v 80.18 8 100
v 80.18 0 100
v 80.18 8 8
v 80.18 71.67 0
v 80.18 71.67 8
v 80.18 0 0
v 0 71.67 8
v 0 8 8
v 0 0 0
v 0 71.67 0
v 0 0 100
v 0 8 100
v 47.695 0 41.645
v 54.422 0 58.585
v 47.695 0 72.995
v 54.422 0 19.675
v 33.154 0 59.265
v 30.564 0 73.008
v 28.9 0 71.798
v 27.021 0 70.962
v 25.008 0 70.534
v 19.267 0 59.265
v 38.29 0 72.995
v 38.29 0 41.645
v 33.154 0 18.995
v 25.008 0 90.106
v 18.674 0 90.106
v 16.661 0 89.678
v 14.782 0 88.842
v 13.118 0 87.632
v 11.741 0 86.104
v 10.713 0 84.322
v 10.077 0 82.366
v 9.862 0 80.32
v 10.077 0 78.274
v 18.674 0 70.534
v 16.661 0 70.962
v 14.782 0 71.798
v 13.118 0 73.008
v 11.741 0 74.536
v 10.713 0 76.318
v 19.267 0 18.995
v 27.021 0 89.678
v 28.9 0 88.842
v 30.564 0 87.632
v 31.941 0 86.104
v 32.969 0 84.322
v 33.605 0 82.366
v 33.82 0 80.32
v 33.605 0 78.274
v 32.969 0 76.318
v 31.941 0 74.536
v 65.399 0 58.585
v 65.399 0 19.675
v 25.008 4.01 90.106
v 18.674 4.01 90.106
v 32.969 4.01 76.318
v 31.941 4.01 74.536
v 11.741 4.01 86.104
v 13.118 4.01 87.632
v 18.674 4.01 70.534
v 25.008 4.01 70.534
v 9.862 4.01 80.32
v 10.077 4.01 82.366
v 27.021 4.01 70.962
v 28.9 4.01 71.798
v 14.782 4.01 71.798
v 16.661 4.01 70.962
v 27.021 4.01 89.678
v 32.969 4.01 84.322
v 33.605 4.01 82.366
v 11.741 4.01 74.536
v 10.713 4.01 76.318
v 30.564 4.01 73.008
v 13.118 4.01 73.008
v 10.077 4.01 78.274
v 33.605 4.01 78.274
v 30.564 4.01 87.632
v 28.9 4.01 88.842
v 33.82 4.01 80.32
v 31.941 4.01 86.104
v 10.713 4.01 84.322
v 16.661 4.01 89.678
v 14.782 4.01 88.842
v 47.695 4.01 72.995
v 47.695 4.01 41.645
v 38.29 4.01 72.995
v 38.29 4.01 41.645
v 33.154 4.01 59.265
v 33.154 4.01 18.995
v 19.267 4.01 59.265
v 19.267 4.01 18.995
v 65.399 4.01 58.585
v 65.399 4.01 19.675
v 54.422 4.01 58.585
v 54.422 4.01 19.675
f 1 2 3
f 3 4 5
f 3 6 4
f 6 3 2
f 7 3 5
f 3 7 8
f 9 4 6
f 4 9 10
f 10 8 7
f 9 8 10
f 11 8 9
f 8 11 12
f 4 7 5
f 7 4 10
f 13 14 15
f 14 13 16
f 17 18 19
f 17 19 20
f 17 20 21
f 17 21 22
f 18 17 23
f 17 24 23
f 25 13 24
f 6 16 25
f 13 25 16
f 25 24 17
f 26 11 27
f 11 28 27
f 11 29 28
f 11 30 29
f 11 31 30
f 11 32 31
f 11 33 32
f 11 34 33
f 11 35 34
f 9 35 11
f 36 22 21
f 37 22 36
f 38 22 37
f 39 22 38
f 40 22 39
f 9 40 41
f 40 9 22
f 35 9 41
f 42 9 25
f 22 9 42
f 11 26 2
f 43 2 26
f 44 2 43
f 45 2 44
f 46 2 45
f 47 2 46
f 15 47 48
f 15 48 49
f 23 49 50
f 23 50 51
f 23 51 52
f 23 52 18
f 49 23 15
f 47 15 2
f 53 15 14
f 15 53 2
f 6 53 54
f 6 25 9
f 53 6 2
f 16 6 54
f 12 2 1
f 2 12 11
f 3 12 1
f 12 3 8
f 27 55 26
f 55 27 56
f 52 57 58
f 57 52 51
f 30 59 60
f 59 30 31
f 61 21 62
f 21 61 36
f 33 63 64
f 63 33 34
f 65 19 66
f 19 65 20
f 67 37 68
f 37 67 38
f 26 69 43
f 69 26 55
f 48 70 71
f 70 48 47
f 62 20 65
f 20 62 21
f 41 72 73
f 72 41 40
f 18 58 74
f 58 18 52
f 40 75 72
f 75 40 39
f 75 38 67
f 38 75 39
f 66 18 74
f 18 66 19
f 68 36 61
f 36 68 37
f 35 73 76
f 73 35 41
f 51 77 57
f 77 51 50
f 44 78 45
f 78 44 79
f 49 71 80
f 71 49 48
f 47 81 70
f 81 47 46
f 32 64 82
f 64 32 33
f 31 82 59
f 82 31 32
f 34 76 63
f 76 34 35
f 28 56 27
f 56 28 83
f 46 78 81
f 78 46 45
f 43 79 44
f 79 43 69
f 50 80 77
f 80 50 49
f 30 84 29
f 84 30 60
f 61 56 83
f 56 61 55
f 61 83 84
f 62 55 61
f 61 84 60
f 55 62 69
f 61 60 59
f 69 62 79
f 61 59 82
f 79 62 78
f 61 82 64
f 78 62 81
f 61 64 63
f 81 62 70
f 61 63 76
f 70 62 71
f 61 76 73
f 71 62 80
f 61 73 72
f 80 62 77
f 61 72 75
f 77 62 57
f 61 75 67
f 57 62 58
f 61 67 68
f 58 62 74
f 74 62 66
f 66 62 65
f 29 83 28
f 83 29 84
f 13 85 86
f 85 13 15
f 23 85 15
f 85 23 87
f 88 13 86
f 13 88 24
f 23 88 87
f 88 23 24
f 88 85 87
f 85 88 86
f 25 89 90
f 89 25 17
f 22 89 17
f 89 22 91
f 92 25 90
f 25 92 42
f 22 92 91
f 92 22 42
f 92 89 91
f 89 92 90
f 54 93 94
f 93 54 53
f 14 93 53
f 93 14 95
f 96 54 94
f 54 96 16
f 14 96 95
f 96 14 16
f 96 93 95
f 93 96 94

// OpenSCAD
/* doodle-meta {"version":1,"parameters":{"width":{"label":"Overall width","description":"Changes the body width","unit":"mm","feature":"body_width"},"depth":{"label":"Overall depth","description":"Changes the base depth","unit":"mm","feature":"body_depth"},"height":{"label":"Overall height","description":"Changes the total height","unit":"mm","feature":"body_height"},"panel_thickness":{"label":"Panel thickness","description":"Thickness of the vertical upright","unit":"mm","feature":"panel_thickness"},"base_thickness":{"label":"Base thickness","description":"Thickness of the horizontal base","unit":"mm","feature":"base_thickness"}},"features":{"body_width":{"kind":"dimension","axis":"x","label":"Overall width"},"body_depth":{"kind":"dimension","axis":"y","label":"Overall depth"},"body_height":{"kind":"dimension","axis":"z","label":"Overall height"},"panel_thickness":{"kind":"dimension","axis":"y","label":"Panel thickness"},"base_thickness":{"kind":"dimension","axis":"z","label":"Base thickness"}}} */

// Parameters
width = 80.18;
depth = 71.67;
height = 100.0;
panel_thickness = 8.0;
base_thickness = 8.0;

// Derived dimensions
base_depth = depth - panel_thickness;
panel_height = height - base_thickness;

// Cutout parameters (derived from view_1 normalized coordinates)
// View 1: u -> X, v -> -Z (v=0 is top, v=1 is bottom)
// X = u * width, Z = (1-v) * height

// Cutout 1 (Upper-Left): center (0.2724, 0.1968), size (0.2988, 0.1968)
c1_cx = 0.2724 * width;
c1_cz = (1.0 - 0.1968) * height;
c1_w = 0.2988 * width;
c1_h = 0.1968 * height;

// Cutout 2 (Center): center (0.5362, 0.4268), size (0.1173, 0.3135)
c2_cx = 0.5362 * width;
c2_cz = (1.0 - 0.4268) * height;
c2_w = 0.1173 * width;
c2_h = 0.3135 * height;

// Cutout 3 (Lower-Left): center (0.3269, 0.6087), size (0.1732, 0.4027)
c3_cx = 0.3269 * width;
c3_cz = (1.0 - 0.6087) * height;
c3_w = 0.1732 * width;
c3_h = 0.4027 * height;

// Cutout 4 (Lower-Right): center (0.7472, 0.6087), size (0.1369, 0.3891)
c4_cx = 0.7472 * width;
c4_cz = (1.0 - 0.6087) * height;
c4_w = 0.1369 * width;
c4_h = 0.3891 * height;

// Epsilon for boolean operations
eps = 0.01;

// Main design
difference() {
    // Positive Body: L-shape
    union() {
        // Base: extends from Y=0 to Y=depth, Z=0 to Z=base_thickness
        cube([width, depth, base_thickness]);
        
        // Panel: extends from Y=0 to Y=panel_thickness, Z=base_thickness to Z=height
        // Positioned at the back (Y=0) to match right view where tall mass is at u=0 (front/Y=0)
        // Wait, right view u=0 is FRONT (Y=0). The tall mass is at u=0.
        // So the panel is at Y=0. The base extends from Y=0 to Y=depth.
        // This forms an L with the vertical leg at Y=0.
        translate([0, 0, base_thickness])
            cube([width, panel_thickness, panel_height]);
    }
    
    // Subtractive Cutters (Through the panel wall along Y)
    // The panel occupies Y in [0, panel_thickness].
    // Cutters must span Y from -eps to panel_thickness + eps.
    
    // Cutout 1: Slot (Rounded ends)
    // Center X: c1_cx, Center Z: c1_cz
    // Width (X): c1_w, Height (Z): c1_h
    // Slot orientation: Horizontal (long axis along X)
    translate([c1_cx, 0, c1_cz])
        rotate([90, 0, 0])
            hull() {
                translate([-c1_w/2 + c1_h/2, 0, 0])
                    cylinder(h=panel_thickness + 2*eps, r=c1_h/2, center=true);
                translate([c1_w/2 - c1_h/2, 0, 0])
                    cylinder(h=panel_thickness + 2*eps, r=c1_h/2, center=true);
            }
            
    // Cutout 2: Rectangle
    translate([c2_cx, 0, c2_cz])
        cube([c2_w, panel_thickness + 2*eps, c2_h], center=true);
        
    // Cutout 3: Rectangle
    translate([c3_cx, 0, c3_cz])
        cube([c3_w, panel_thickness + 2*eps, c3_h], center=true);
        
    // Cutout 4: Rectangle
    translate([c4_cx, 0, c4_cz])
        cube([c4_w, panel_thickness + 2*eps, c4_h], center=true);
}
